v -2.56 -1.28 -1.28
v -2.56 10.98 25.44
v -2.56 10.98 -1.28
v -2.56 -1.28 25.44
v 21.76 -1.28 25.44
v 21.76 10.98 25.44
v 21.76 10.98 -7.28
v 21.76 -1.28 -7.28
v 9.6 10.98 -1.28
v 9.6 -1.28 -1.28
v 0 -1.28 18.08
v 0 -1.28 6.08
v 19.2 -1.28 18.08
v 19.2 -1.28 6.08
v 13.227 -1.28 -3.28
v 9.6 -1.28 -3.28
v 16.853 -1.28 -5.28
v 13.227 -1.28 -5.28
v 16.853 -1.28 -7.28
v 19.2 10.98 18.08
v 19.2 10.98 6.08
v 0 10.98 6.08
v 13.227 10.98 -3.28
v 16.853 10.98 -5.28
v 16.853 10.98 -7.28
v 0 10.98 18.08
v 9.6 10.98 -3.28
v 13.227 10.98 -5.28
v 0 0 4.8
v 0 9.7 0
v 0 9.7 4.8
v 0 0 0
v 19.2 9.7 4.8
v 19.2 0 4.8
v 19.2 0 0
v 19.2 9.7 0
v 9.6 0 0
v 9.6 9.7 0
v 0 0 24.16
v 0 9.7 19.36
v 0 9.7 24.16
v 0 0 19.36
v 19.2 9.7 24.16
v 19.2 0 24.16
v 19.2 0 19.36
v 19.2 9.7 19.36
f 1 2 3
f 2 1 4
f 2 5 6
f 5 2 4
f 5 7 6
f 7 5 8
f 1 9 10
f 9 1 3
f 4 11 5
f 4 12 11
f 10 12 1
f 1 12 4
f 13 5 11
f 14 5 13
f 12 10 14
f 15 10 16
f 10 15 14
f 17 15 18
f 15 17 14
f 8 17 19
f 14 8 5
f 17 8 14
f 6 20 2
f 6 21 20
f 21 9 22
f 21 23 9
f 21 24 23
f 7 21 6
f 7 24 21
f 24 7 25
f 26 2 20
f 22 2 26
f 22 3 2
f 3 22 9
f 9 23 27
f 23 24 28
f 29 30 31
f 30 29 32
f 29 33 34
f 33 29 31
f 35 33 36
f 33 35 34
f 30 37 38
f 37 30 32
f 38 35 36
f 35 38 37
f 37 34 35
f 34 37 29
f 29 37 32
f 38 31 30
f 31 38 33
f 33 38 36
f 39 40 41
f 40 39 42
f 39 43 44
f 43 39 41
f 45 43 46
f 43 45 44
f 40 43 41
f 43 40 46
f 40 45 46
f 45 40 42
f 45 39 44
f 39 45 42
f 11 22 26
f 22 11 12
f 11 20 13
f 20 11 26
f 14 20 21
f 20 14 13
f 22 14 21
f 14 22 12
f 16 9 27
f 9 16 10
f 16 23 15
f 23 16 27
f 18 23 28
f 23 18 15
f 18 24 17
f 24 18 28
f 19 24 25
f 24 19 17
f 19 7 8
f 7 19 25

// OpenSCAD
magnet_length=19;
magnet_width=9.5;
magnet_height=4.6;
wall_thickness=1.28;
slop=.2;
throat=12;
n_steps=3;
h_step=2;

l=magnet_length+slop;
w=magnet_width+slop;
h=magnet_height+slop;


h_bod = 4*wall_thickness+2*h+throat;

difference(){
    translate(-wall_thickness*[2,1,1])
        cube([l+4*wall_thickness,w+2*wall_thickness, h_bod]);
    //magnets
    cube([l,w,h]);
    translate([0,0,h+throat+2*wall_thickness]) cube([l,w,h]);
    //throat
    translate([0,-wall_thickness-.1,h+wall_thickness]) cube([l,99,throat]);
    //cutaway
    if($preview) translate([0,w/2-50,0]) cube(100, center=true);
}

dx=(l/2+wall_thickness)/n_steps;

for(i=[0:n_steps-1]){
    x=l/2+i*dx;
    z=wall_thickness+(i+1)*h_step;
    translate([x,-wall_thickness,-z])
        cube([l+2*wall_thickness-x,w+2*wall_thickness,z]);
}
